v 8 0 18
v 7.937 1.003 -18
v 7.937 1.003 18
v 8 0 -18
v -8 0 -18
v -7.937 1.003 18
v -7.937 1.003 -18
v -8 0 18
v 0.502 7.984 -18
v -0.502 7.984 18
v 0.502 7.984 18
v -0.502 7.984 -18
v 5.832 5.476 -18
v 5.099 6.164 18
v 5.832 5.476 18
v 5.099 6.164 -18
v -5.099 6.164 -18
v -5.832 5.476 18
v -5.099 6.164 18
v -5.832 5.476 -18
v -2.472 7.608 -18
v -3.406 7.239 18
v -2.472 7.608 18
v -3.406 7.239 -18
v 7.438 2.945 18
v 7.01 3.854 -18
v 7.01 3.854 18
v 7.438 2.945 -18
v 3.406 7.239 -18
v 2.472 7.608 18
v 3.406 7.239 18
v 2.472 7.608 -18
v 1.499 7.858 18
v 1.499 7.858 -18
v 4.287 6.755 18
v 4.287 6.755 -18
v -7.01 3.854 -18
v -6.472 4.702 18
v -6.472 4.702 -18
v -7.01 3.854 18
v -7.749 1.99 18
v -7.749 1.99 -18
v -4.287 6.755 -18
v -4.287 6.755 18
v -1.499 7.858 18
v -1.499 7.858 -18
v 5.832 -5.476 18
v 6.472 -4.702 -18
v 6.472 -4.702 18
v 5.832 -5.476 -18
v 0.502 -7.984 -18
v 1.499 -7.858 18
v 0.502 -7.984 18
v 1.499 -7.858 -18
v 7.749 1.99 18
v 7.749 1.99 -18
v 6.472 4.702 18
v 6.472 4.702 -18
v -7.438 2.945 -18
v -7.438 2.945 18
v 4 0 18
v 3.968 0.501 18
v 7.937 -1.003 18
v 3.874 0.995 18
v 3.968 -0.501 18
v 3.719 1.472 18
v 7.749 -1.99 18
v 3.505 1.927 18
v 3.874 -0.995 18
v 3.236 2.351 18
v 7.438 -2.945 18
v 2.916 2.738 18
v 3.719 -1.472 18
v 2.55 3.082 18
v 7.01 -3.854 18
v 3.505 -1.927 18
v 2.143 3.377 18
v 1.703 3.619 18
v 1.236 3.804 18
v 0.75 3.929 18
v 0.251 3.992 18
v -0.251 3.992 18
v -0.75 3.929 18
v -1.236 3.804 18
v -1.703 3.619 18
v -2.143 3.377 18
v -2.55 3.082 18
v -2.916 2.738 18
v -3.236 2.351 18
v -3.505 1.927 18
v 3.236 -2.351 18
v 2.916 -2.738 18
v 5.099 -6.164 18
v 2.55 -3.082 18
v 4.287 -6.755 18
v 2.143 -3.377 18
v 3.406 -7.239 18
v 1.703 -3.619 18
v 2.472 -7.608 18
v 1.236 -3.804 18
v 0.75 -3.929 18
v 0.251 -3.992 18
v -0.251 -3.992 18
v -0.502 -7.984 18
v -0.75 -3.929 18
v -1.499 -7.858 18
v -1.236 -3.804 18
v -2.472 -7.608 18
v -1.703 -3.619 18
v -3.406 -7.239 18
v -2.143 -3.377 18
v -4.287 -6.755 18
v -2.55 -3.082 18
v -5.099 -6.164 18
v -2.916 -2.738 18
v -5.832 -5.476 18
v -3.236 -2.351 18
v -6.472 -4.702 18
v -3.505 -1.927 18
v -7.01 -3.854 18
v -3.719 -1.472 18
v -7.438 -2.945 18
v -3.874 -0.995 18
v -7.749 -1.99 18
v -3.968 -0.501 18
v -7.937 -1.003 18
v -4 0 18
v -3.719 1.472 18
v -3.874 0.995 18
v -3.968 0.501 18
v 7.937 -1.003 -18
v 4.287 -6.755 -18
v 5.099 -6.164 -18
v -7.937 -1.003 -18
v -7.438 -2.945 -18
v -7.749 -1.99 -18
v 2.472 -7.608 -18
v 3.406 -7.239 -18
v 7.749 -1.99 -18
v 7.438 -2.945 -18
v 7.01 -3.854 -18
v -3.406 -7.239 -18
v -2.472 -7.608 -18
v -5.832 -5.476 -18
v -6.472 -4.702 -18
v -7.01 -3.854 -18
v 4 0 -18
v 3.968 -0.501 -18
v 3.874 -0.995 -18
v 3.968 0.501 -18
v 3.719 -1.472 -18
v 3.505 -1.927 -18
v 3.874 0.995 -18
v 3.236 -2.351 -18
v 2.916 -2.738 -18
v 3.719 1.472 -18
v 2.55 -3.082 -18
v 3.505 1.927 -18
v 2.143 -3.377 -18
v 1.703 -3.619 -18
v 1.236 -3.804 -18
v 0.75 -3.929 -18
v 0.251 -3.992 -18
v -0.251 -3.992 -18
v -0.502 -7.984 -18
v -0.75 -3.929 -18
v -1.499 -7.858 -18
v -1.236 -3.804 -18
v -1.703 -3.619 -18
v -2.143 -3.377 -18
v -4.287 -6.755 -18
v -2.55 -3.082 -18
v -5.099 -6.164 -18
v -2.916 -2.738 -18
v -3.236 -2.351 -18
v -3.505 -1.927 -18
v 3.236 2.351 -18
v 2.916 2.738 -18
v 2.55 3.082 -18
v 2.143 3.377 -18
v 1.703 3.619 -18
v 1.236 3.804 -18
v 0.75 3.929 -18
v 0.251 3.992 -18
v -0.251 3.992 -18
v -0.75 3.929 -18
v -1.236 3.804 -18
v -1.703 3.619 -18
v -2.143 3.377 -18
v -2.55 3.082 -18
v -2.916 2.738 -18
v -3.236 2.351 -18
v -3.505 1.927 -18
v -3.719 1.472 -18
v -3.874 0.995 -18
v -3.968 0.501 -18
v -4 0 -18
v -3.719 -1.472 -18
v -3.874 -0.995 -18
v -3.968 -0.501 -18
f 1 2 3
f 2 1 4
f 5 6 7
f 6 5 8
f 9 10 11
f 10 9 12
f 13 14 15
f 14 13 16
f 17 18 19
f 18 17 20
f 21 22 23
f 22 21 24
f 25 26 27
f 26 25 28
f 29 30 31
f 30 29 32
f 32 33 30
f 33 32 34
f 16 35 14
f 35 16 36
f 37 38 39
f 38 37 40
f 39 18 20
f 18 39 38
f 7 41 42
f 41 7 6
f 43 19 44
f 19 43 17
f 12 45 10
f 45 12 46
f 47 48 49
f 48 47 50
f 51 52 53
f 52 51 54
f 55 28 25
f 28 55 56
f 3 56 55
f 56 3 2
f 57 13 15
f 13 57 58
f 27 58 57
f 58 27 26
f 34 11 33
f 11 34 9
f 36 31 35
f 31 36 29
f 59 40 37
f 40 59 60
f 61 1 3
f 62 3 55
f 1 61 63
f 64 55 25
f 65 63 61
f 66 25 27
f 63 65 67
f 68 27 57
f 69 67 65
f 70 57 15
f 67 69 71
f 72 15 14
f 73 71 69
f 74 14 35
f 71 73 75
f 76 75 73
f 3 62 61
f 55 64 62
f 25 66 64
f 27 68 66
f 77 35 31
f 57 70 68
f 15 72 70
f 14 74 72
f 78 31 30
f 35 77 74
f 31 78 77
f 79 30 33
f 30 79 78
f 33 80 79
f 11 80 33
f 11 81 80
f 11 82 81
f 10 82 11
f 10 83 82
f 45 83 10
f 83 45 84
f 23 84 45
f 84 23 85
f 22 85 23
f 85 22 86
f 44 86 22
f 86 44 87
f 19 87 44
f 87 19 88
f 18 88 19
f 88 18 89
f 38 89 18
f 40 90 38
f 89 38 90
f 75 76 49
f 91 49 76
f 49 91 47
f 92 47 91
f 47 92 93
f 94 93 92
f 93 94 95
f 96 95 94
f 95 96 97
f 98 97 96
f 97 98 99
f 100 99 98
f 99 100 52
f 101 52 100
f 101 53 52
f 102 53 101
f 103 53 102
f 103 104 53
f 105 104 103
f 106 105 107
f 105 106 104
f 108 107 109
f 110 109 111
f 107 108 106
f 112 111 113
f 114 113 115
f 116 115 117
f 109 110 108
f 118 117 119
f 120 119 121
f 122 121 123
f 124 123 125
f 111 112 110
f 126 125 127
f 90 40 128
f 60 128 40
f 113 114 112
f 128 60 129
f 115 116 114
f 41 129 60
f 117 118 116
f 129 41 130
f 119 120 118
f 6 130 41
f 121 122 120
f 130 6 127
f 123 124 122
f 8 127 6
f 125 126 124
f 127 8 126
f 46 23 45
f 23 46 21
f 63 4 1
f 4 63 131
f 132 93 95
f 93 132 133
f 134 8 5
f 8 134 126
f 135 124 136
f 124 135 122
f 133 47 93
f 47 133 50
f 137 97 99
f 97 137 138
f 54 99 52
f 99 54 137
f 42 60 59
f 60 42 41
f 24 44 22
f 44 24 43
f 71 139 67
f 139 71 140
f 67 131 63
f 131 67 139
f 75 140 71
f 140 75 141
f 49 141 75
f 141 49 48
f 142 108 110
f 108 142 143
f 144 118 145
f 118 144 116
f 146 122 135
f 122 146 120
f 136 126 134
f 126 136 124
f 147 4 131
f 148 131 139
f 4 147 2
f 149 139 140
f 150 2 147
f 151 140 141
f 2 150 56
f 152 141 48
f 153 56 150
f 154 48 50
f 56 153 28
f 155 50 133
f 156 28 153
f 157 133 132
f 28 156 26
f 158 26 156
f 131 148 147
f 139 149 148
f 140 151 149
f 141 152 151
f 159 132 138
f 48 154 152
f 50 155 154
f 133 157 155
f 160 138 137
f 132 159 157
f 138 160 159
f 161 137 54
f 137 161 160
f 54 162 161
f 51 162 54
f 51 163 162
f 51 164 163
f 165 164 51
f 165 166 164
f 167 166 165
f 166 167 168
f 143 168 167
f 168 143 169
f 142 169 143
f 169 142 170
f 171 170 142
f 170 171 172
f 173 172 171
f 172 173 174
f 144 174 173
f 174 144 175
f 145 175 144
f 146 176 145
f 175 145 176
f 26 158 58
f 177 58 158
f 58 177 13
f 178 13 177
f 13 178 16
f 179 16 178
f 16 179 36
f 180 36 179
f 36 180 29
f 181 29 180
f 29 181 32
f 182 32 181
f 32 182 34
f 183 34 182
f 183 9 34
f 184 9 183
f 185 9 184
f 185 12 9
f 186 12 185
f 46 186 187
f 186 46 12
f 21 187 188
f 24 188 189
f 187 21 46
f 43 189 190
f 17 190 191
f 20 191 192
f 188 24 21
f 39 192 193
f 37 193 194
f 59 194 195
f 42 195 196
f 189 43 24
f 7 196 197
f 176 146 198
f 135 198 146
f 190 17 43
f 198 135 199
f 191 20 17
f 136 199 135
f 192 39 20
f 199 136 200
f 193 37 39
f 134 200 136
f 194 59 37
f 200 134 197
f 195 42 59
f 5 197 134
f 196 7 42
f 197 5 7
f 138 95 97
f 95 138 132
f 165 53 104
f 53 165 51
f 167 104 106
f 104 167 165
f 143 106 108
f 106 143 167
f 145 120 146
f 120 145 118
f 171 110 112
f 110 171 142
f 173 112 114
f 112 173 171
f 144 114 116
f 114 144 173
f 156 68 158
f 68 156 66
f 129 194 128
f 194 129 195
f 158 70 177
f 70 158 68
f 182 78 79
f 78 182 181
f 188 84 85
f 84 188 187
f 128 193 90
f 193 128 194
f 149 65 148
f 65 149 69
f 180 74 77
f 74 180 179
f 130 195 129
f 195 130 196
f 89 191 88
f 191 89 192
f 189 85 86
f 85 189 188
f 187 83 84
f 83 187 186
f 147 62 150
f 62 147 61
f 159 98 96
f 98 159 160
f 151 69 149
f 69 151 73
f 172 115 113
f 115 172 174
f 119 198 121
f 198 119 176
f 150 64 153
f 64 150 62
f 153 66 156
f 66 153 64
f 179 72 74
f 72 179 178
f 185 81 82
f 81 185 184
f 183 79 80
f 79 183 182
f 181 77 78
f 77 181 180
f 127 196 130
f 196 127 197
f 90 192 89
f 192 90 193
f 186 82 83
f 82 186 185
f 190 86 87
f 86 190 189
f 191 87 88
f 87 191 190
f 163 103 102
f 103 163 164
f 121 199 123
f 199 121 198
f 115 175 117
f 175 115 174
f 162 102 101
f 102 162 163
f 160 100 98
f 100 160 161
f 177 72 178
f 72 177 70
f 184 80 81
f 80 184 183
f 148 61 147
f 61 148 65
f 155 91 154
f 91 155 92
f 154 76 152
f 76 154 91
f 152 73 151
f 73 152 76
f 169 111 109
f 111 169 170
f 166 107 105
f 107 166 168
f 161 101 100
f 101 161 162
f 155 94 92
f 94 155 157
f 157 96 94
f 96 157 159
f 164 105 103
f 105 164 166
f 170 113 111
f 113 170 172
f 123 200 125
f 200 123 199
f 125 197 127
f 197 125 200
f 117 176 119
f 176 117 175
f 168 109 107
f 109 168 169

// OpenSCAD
$fn = 50;


difference() {
	union() {
		translate(v = [0, 0, -18.0000000000]) {
			cylinder(h = 36, r = 8.0000000000);
		}
	}
	union() {
		translate(v = [0, 0, -100.0000000000]) {
			cylinder(h = 200, r = 4.0000000000);
		}
	}
}
